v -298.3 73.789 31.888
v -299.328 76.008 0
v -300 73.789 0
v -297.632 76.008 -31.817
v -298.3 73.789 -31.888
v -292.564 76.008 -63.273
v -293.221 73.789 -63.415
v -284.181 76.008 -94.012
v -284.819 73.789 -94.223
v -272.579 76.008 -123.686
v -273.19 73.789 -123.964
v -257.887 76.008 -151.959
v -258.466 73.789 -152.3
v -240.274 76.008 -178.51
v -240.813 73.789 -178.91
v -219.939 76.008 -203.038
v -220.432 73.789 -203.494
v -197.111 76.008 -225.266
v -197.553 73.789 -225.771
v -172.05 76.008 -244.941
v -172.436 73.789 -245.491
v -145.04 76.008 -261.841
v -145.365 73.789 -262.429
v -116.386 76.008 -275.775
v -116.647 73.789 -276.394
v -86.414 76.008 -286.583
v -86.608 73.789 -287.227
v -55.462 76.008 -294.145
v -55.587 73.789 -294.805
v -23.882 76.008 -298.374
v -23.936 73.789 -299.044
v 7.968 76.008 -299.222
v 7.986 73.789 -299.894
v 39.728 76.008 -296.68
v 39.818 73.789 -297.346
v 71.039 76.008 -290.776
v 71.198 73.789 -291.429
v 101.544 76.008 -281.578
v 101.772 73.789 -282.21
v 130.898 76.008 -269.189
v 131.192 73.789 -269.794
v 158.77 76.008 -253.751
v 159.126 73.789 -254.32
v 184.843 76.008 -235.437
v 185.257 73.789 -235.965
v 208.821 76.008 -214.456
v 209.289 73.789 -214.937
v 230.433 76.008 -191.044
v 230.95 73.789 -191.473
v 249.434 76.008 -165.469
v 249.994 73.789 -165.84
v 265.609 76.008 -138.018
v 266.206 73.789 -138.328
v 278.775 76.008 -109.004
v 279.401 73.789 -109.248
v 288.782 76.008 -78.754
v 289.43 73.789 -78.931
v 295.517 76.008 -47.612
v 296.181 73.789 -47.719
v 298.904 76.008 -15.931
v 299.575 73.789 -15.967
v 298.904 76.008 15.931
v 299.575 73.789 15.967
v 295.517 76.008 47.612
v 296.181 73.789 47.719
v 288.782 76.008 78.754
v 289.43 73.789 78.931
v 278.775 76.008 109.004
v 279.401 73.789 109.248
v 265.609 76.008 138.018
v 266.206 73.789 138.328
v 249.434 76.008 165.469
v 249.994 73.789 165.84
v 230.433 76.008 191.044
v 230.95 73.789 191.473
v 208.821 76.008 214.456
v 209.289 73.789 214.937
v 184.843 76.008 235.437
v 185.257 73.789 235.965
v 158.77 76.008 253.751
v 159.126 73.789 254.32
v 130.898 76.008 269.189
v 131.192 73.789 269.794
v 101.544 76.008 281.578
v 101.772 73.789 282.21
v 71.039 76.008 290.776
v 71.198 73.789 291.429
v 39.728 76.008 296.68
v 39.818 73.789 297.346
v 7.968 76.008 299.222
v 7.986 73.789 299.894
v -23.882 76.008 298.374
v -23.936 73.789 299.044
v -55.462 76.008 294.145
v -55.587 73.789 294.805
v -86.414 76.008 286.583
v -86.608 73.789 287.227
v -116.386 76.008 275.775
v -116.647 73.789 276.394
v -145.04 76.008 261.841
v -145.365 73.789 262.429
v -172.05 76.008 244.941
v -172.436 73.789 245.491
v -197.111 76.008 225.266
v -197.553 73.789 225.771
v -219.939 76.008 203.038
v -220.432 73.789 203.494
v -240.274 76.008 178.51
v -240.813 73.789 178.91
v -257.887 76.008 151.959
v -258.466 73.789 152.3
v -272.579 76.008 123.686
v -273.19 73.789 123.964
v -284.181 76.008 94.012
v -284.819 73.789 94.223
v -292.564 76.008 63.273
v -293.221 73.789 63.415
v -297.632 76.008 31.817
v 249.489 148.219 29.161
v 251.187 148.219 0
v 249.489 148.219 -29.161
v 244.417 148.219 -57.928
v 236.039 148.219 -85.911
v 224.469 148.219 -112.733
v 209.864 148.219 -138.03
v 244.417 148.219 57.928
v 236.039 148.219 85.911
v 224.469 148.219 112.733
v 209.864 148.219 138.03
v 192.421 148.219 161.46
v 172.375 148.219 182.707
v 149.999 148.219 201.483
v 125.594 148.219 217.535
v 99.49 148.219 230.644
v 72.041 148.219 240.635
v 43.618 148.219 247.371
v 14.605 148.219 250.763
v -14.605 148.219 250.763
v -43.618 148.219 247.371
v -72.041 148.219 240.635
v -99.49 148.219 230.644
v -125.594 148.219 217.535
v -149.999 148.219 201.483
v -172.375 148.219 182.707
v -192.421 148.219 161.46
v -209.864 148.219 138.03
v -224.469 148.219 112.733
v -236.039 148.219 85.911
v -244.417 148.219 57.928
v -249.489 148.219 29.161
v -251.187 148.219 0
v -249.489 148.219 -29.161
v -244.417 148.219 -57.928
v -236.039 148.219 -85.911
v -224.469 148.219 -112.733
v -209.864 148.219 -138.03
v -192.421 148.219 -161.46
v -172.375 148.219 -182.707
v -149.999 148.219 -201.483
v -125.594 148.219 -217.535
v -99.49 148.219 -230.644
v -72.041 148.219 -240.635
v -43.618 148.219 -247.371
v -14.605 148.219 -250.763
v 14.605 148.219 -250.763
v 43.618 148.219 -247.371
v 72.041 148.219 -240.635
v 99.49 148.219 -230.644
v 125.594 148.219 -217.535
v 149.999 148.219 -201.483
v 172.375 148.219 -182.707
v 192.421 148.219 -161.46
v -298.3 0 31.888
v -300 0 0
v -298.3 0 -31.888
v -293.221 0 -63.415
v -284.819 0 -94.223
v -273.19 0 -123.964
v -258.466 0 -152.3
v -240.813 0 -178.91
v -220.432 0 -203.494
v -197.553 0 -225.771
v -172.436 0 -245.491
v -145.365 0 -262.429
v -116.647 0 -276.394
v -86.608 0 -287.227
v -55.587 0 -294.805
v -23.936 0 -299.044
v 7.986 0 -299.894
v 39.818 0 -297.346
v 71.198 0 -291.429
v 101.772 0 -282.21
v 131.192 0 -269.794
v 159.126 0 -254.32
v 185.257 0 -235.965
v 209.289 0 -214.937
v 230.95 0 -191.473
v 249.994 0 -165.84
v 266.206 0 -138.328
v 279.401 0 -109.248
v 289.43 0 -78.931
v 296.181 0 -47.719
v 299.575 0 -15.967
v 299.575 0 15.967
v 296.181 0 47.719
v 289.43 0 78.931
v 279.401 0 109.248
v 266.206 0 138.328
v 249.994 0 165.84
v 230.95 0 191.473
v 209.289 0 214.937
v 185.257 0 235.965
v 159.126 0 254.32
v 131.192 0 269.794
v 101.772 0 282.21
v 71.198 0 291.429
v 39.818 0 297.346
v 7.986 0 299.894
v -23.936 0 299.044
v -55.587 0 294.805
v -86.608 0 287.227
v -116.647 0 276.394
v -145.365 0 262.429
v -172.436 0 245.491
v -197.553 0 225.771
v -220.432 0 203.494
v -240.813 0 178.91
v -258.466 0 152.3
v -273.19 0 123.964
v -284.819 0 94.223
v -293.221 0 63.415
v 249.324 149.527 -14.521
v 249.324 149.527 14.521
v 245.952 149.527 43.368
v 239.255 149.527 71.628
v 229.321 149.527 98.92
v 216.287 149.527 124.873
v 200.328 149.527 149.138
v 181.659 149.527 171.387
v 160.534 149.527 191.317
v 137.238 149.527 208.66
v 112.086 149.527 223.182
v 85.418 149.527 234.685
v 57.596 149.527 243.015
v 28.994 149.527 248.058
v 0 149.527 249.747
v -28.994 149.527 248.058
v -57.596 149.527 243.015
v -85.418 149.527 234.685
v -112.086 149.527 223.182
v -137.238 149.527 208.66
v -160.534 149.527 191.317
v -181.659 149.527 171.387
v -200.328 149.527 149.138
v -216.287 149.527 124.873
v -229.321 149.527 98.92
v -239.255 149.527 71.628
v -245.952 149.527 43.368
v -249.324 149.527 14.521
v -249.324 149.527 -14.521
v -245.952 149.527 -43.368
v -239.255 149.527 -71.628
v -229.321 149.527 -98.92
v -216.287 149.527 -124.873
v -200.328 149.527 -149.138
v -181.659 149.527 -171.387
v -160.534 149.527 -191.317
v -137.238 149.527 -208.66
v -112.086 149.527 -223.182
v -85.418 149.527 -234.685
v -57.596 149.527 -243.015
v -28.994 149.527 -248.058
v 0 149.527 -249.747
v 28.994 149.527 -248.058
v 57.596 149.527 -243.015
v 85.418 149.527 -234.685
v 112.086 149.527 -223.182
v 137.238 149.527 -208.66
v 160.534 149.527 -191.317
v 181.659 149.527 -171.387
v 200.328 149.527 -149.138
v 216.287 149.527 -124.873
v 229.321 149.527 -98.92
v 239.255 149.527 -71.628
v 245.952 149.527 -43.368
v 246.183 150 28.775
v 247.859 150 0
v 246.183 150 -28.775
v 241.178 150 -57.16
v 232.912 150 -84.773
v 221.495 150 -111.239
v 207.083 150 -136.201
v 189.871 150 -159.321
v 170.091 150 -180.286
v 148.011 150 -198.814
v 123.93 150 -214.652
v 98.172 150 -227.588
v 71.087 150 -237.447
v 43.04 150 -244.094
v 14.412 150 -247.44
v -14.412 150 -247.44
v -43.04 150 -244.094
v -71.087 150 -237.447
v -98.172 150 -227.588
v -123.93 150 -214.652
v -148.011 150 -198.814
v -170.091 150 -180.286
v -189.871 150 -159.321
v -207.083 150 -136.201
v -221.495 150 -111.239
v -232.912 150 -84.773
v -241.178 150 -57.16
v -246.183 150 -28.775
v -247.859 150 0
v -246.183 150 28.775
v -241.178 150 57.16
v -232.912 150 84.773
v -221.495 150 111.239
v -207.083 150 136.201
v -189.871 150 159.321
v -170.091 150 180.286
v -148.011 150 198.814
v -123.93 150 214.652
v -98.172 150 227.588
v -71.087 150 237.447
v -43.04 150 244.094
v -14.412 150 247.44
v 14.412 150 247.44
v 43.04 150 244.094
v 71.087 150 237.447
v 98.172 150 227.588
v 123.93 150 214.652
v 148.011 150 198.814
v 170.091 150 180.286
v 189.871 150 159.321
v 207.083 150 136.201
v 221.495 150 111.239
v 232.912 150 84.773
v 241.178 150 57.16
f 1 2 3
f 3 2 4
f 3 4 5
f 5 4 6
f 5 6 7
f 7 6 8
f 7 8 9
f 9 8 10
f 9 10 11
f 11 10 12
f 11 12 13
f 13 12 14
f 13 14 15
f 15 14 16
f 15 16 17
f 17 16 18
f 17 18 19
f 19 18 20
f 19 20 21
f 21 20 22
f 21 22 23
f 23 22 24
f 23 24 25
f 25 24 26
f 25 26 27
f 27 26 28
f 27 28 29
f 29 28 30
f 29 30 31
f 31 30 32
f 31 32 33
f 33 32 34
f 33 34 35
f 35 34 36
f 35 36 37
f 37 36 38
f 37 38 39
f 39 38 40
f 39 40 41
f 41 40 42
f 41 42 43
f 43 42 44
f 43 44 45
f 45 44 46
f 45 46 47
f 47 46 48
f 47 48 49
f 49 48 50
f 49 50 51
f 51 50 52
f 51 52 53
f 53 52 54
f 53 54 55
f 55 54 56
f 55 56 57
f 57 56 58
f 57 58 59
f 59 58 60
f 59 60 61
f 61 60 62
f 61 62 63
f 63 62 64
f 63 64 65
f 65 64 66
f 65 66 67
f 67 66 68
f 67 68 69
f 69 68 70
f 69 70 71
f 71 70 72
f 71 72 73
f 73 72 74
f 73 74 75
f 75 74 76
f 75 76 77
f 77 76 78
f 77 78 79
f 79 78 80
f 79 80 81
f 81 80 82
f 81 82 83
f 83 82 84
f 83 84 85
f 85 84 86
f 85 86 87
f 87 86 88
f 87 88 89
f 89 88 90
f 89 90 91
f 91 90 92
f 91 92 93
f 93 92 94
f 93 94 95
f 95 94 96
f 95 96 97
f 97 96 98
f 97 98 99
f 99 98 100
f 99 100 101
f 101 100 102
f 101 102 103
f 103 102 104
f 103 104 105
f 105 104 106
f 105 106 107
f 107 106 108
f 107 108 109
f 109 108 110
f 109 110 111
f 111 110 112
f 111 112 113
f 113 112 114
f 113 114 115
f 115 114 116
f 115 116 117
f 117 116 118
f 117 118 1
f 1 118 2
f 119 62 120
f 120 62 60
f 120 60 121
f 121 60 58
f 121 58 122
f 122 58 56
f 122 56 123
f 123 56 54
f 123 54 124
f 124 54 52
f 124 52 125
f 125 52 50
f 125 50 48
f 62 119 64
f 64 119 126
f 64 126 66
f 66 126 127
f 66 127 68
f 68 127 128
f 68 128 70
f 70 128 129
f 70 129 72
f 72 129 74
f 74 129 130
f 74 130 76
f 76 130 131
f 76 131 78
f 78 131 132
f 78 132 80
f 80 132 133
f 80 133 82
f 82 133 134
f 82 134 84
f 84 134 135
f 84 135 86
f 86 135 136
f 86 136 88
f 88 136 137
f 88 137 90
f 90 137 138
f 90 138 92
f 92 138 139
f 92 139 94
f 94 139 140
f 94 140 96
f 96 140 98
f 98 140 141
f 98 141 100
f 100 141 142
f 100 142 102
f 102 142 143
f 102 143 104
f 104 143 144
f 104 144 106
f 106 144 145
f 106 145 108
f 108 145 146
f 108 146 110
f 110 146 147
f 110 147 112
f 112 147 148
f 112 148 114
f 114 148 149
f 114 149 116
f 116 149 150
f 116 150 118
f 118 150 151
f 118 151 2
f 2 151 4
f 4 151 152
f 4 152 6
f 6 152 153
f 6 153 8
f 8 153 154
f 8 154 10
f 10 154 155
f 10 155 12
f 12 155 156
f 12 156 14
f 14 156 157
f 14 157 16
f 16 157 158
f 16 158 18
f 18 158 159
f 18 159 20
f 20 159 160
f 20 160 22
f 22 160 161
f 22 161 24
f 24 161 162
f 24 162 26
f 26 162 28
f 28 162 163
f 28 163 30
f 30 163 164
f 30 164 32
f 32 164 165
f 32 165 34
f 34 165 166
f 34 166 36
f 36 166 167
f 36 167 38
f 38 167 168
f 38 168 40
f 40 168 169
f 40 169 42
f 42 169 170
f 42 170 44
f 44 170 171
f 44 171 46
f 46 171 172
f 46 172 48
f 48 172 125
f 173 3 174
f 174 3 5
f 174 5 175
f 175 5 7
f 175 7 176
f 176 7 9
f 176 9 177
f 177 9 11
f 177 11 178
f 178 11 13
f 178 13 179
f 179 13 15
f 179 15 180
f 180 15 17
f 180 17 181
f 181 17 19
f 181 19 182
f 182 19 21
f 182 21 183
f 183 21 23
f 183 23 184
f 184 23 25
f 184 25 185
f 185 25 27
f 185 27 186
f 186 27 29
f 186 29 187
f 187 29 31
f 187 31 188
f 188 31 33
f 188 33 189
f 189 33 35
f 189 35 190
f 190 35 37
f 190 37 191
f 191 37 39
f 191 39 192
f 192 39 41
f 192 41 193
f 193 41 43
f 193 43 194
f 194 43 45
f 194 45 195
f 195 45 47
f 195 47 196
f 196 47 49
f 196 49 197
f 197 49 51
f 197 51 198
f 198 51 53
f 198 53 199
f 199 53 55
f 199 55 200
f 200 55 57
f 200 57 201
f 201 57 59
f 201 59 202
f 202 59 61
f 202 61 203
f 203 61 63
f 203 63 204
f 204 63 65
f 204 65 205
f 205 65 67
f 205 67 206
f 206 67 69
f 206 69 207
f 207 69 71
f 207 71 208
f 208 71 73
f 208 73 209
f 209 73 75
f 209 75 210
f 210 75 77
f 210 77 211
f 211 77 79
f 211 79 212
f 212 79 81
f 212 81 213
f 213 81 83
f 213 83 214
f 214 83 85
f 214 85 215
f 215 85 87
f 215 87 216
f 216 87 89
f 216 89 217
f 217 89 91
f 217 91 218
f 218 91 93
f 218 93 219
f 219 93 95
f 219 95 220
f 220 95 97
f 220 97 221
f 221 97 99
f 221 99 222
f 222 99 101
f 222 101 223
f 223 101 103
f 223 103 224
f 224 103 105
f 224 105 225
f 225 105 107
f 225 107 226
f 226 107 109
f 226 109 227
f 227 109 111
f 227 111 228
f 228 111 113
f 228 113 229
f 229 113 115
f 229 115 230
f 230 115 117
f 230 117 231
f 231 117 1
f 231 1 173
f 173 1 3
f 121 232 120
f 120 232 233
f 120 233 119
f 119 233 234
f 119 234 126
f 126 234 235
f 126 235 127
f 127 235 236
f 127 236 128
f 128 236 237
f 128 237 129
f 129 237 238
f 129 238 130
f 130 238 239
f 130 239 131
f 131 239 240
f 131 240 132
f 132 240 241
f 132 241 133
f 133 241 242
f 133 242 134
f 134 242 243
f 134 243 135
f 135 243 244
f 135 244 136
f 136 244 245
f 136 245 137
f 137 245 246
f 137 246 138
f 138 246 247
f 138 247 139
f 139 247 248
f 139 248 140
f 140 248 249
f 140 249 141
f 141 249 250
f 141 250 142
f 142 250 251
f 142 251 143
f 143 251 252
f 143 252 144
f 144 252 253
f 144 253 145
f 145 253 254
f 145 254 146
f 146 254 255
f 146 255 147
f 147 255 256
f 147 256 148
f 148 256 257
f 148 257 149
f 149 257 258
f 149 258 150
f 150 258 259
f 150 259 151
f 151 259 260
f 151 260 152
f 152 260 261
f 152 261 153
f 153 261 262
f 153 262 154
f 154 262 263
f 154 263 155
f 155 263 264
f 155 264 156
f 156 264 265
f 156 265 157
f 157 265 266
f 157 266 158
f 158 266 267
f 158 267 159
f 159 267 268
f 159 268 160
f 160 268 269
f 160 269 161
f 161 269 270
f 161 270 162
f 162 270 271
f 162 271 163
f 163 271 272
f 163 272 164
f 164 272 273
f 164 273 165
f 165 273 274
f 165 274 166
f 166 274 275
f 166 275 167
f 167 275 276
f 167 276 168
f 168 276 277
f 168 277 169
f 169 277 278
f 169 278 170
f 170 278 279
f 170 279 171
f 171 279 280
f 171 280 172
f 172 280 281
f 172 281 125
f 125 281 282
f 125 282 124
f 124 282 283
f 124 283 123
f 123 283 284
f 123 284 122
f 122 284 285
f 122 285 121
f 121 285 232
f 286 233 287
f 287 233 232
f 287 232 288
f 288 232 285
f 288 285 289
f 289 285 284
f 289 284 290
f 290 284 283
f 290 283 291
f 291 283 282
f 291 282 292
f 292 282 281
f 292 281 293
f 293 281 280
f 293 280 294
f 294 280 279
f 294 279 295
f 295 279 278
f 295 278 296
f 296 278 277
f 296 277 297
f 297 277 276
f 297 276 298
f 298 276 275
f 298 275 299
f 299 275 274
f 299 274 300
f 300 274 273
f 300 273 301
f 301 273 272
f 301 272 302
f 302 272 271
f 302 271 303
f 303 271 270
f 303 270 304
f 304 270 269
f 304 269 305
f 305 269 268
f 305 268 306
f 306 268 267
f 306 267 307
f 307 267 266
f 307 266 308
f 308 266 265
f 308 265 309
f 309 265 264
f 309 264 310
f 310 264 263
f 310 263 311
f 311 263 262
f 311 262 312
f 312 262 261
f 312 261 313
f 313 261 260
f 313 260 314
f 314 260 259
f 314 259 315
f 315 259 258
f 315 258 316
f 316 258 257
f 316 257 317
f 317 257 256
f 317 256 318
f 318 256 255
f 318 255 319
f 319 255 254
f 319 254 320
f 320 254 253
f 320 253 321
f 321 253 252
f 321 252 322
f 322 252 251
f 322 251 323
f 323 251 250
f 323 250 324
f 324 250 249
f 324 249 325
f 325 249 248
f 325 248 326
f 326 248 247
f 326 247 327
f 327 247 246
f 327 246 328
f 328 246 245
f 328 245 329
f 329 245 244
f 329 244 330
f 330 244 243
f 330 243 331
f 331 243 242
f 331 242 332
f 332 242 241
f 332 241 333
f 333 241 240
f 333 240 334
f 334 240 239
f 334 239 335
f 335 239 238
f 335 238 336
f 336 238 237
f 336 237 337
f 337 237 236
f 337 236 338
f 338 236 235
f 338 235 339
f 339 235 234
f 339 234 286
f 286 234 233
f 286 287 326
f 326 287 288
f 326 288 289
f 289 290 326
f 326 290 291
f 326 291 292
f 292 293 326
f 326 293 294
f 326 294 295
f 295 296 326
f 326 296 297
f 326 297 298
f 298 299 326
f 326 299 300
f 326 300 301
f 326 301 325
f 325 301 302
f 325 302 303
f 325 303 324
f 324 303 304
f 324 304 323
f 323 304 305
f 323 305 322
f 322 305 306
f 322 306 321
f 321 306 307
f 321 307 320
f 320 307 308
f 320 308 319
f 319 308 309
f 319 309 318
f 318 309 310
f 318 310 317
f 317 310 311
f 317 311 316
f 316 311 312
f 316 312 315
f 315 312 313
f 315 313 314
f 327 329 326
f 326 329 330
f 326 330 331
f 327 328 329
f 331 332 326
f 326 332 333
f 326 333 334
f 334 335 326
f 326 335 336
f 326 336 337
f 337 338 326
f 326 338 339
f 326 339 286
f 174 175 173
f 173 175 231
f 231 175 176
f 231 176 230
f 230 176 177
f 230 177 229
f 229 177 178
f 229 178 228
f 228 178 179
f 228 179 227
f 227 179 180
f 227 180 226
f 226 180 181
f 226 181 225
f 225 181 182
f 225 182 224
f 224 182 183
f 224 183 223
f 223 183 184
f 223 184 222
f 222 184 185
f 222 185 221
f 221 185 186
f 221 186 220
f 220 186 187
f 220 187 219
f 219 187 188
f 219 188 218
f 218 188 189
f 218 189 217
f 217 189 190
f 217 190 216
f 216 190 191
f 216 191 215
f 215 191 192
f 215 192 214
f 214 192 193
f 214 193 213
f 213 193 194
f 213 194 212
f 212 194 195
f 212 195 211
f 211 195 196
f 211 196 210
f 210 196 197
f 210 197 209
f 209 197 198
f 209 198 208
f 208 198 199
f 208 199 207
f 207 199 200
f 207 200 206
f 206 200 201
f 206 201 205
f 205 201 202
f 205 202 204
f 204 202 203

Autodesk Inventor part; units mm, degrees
ref_plane "YZ Plane" through (0, 0, 0) normal (1, 0, 0) x (0, 1, 0)
ref_plane "XZ Plane" through (0, 0, 0) normal (0, 1, 0) x (-1, 0, 0)
ref_plane "XY Plane" through (0, 0, 0) normal (0, 0, 1) x (1, 0, 0)
sketch "Sketch1" plane through (0, 0, 0) normal (0, 1, 0) x (-1, 0, 0)
  circle A0 centre (0, 0) radius 300
  dimension "d0" = 600
extrude "Extrusion1" add sketch "Sketch1" along normal blind 75
sketch "Sketch2" plane through (0, 75, 0) normal (0, 1, 0) x (1, 0, 0)
  circle A0 centre (0, 0) radius 250
  dimension "d3" = 500
extrude "Extrusion2" add sketch "Sketch2" along normal blind 75
loft "Loft1" add section 1 edges at (-250, 150, 0) section 2 edges at (300, 75, 0)
fillet "Fillet1" radius 4 1 edges at (-250, 150, 0)
fillet "Fillet2" radius 4 2 edges at (0, 75, -300) (0, 75, 300)
properties part number "Base"
